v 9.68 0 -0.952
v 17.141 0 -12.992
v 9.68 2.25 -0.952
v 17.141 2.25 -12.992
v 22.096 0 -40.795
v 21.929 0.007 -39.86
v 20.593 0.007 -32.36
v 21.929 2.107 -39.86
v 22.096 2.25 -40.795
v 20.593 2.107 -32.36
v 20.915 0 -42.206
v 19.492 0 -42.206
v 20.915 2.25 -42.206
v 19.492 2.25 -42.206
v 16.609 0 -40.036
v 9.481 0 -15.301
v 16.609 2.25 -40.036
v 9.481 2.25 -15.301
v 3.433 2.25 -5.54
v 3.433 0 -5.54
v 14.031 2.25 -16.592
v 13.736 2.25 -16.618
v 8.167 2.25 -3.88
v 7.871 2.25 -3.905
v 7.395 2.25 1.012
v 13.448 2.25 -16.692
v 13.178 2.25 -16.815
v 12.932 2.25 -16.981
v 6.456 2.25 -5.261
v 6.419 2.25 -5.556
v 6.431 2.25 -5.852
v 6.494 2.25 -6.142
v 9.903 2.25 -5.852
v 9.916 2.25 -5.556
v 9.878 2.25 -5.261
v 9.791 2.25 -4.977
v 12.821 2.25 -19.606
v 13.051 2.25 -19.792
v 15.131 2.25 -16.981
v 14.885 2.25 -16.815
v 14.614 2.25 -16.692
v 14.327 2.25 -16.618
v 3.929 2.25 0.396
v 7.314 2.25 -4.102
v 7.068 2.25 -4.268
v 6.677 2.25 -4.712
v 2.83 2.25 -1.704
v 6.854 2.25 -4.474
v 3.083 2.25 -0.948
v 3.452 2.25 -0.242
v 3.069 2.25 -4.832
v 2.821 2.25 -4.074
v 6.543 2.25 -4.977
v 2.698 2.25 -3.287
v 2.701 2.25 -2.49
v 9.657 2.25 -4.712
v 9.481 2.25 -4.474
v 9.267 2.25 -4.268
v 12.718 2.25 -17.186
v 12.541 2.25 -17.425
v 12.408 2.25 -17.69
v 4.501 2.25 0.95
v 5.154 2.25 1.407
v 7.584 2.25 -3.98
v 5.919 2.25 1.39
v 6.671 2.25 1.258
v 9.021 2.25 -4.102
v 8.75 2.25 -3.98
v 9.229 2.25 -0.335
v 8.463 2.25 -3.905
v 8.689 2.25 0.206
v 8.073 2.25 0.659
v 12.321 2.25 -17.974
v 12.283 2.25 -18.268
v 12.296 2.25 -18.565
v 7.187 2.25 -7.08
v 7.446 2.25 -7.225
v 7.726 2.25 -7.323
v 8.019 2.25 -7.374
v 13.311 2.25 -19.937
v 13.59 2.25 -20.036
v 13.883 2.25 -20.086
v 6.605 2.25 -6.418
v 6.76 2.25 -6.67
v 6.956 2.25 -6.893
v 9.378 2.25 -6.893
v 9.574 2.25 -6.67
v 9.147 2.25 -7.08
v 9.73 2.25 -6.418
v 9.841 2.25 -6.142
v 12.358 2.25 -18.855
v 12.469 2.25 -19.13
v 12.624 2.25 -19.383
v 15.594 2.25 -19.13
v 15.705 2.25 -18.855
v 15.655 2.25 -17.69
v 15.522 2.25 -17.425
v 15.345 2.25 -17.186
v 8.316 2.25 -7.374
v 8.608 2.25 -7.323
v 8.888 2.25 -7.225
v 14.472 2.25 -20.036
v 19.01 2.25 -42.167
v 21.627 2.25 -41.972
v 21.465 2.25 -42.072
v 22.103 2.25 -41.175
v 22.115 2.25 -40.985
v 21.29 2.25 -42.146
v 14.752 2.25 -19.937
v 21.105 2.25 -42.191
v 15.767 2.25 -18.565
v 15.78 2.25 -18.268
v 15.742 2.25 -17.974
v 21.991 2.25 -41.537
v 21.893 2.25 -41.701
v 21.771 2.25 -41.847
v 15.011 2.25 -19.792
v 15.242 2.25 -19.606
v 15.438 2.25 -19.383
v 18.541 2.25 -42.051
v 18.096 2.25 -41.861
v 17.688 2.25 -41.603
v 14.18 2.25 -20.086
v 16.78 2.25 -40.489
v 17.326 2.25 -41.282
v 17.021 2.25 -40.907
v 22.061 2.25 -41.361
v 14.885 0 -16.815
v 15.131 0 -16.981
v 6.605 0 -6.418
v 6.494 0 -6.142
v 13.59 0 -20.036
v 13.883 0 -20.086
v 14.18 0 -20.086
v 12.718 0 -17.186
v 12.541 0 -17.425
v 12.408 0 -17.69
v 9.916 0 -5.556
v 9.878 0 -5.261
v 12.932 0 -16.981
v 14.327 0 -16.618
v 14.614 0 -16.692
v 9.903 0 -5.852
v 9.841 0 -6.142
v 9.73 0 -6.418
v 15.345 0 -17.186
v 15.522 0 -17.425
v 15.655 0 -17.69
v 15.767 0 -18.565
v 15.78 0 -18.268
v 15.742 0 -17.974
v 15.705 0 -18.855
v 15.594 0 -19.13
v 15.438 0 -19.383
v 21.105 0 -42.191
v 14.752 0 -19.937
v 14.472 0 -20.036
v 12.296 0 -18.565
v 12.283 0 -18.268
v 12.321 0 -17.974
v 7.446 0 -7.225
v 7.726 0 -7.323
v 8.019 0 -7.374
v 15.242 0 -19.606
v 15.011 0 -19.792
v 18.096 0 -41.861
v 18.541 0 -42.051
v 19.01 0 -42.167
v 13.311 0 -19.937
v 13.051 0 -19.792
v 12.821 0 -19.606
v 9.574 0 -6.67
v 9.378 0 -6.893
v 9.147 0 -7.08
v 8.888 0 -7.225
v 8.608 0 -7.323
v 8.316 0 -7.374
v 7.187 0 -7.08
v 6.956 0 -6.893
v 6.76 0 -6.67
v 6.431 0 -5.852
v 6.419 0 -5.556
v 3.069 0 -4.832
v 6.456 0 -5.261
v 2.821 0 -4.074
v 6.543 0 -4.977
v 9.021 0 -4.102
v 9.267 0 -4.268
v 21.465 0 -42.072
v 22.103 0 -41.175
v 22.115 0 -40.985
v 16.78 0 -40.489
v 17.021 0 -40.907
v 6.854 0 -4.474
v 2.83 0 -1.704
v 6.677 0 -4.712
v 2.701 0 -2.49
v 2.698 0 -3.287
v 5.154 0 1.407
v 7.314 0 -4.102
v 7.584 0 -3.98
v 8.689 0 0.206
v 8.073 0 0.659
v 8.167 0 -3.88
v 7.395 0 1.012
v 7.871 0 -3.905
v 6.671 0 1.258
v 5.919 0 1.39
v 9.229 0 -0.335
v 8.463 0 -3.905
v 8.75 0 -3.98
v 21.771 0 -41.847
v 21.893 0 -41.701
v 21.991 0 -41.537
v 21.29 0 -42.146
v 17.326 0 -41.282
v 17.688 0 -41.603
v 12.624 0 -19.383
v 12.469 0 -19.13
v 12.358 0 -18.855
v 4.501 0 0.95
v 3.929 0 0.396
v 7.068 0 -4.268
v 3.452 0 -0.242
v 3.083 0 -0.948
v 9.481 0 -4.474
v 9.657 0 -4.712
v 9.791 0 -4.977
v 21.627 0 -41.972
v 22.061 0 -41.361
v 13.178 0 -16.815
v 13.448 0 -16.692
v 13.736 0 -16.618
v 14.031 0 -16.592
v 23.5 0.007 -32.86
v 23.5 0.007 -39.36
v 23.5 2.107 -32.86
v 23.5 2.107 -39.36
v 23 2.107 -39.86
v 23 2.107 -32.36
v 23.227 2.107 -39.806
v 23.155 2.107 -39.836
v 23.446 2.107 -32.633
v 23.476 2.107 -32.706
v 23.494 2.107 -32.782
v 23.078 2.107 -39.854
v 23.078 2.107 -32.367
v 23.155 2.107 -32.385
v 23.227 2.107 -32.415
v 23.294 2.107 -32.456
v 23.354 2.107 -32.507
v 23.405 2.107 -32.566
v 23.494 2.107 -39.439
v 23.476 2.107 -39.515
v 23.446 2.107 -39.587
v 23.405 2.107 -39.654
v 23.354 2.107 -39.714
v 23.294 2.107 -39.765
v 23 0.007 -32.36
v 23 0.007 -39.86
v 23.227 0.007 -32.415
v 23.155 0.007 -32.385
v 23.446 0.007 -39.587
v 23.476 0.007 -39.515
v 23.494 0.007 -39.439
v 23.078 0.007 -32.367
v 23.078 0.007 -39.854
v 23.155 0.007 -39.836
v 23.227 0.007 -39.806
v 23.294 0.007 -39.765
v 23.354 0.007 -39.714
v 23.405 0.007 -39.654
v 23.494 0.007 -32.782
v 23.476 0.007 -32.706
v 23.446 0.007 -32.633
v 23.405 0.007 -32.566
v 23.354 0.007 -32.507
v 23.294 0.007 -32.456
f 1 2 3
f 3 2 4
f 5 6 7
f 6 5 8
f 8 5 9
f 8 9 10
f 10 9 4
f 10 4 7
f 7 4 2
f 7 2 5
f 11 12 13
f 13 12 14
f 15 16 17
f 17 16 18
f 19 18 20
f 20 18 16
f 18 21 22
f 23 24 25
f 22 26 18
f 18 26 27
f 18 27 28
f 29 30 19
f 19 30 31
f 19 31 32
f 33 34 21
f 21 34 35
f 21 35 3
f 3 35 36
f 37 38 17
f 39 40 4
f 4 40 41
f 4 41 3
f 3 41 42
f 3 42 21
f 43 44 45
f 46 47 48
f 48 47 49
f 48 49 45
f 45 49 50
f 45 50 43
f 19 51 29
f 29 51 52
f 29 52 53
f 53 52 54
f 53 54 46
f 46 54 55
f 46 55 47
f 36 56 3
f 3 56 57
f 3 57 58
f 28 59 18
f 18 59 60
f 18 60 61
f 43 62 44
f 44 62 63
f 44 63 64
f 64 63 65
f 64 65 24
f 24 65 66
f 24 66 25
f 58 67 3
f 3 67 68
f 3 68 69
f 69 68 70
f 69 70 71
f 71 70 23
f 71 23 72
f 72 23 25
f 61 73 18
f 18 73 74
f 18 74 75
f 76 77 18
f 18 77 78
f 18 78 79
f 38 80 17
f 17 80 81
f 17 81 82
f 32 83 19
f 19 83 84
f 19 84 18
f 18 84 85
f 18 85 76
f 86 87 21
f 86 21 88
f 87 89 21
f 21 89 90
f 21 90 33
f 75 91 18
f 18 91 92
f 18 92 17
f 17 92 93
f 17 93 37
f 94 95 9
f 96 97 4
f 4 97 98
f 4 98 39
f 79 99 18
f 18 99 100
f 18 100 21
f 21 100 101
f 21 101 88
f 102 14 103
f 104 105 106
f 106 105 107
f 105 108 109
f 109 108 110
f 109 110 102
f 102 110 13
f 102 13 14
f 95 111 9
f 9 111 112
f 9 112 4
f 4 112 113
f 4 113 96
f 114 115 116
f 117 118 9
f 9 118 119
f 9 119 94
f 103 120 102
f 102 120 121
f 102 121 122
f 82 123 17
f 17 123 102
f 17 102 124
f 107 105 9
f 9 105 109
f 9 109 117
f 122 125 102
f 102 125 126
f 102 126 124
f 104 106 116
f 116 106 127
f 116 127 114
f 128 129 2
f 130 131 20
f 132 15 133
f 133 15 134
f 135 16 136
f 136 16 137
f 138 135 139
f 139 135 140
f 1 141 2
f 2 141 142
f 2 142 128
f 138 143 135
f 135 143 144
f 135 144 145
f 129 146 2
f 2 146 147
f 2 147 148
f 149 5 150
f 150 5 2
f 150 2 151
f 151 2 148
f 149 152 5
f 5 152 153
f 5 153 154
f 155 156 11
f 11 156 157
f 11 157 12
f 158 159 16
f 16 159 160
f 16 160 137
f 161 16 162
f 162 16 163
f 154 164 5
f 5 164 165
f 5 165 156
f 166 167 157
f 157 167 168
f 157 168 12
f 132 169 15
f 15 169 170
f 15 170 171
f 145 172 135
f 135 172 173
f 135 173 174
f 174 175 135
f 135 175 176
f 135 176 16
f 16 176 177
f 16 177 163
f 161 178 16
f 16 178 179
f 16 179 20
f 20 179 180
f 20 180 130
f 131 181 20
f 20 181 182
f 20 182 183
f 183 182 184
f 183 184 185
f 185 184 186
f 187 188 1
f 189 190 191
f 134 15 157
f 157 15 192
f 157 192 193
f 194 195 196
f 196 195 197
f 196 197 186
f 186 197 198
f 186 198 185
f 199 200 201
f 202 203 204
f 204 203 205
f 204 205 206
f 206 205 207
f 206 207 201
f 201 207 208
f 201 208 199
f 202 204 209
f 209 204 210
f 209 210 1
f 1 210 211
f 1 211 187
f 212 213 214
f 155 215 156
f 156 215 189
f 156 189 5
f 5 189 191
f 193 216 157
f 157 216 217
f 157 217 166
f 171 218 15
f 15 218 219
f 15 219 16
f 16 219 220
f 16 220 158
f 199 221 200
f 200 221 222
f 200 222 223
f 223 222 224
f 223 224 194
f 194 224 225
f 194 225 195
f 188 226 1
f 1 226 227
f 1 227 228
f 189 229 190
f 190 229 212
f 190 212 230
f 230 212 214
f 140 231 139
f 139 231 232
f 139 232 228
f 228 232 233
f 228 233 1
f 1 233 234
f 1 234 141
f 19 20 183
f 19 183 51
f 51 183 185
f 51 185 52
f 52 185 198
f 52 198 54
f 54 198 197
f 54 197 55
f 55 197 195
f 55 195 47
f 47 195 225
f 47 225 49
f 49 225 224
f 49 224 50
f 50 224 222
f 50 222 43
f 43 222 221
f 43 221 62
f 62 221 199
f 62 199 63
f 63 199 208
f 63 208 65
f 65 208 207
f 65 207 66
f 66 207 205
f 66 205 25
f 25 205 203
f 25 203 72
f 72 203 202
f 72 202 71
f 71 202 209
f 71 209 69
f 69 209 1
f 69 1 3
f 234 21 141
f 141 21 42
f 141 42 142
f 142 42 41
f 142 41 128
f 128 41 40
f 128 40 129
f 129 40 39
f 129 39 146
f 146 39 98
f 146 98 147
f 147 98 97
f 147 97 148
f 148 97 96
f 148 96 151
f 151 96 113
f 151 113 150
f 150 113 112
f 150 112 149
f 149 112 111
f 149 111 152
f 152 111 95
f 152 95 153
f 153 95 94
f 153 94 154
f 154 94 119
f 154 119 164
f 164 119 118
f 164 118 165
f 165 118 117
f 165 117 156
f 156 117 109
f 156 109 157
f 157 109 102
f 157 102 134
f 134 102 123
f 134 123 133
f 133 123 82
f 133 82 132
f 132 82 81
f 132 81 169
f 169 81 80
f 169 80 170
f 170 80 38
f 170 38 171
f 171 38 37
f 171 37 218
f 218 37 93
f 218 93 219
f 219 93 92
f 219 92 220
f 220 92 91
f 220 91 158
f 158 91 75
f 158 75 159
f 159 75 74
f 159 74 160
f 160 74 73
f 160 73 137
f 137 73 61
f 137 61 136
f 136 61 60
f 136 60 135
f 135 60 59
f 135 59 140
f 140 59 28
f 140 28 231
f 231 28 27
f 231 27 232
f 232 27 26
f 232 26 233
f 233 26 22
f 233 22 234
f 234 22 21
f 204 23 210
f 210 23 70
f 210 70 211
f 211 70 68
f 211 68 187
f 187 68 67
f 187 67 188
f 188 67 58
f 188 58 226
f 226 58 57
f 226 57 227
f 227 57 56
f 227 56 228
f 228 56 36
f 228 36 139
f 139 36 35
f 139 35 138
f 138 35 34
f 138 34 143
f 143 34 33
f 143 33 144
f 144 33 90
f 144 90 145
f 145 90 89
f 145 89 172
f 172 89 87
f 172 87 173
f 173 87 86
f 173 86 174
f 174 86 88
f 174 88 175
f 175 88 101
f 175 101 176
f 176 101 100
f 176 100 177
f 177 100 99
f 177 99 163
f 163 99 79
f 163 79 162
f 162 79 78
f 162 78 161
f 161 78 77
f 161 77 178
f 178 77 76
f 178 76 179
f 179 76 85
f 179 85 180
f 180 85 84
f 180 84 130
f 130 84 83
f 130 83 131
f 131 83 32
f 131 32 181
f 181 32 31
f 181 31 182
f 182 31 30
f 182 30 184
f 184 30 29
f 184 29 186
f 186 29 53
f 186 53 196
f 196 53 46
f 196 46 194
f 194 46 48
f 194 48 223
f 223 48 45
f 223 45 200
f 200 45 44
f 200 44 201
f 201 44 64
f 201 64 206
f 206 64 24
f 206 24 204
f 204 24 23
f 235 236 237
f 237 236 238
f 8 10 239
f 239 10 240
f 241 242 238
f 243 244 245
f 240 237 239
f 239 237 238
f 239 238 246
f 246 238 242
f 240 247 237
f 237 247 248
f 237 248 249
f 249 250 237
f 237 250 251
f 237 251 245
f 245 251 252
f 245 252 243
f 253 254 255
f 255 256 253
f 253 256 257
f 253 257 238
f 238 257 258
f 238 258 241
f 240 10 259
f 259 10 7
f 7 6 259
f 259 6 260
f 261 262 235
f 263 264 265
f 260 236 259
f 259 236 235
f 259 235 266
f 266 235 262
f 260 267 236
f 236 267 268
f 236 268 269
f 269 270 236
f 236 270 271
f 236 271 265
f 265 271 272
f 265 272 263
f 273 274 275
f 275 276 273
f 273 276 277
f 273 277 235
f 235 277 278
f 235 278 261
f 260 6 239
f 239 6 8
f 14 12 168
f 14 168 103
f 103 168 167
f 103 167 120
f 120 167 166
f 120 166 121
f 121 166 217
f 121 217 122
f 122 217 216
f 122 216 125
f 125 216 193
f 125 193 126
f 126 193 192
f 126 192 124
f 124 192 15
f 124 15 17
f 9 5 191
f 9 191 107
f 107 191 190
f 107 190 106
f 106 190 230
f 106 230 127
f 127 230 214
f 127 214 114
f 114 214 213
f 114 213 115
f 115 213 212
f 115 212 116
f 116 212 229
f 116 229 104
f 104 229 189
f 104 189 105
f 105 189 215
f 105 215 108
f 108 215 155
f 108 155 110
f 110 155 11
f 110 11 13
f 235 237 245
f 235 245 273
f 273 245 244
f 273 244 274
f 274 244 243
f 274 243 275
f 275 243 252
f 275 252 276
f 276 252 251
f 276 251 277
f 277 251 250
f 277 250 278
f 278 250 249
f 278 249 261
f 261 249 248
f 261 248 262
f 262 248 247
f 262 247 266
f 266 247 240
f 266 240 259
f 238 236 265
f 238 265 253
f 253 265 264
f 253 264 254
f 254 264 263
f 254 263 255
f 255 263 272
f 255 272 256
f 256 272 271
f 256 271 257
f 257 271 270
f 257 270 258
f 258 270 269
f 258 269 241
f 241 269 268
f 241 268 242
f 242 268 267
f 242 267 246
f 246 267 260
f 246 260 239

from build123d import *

# Parameters (mm, degrees)
BOSS_EXTRUDE1_DEPTH = 2.25
FILLET1_R           = 5
SKETCH2_R           = 1.75
CUT_EXTRUDE1_DEPTH  = 48.810012982
BOSS_EXTRUDE2_REACH = 42.044
SKETCH4_W           = 7.5
SKETCH4_H           = 2.1
SKETCH4_2_W         = 7.5
SKETCH4_2_H         = 2.1
BOSS_EXTRUDE3_DEPTH = 1.570511633
FILLET2_R           = 3
FILLET3_R           = 1.2
FILLET4_R           = 0.5


with BuildPart() as part:
    # Sketch1 → Boss-Extrude1 (new body)
    with BuildSketch(Plane(origin=(0, 0, 0), x_dir=(1, 0, 0), z_dir=(0, 1, 0))):
        Polygon((0, 0), (9.481214188, 15.300541739), (17.234295106, 42.205740796), (22.347489461, 42.205740796), (17.140904697, 12.99204844), (7.659690509, -2.308493299), align=None)
    extrude(amount=BOSS_EXTRUDE1_DEPTH)

    # Fillet1
    # the kernel refuses this fillet: 5 mm, written as the material it takes off along each edge
    with BuildSketch(Plane(origin=(7.659690509, -9.589301146, 2.308493299), x_dir=(0.5267341215597666, 0, -0.8500300966346198), z_dir=(0, 1, 0))) as fillet1_piece_1:
        with BuildLine():
            CenterArc((FILLET1_R * 0.767144091705, FILLET1_R), FILLET1_R, 195.013192562, 74.986807438)
            Line((-FILLET1_R * 0.19872211495, FILLET1_R * 0.740958553812), (0, 0))
            Line((0, 0), (FILLET1_R * 0.767144091705, 0))
        make_face()
    extrude(amount=21.428602293, mode=Mode.SUBTRACT)
    with BuildSketch(Plane(origin=(0, -16.294200966, 0), x_dir=(0.5267341215597675, 0, -0.8500300966346193), z_dir=(0, 1, 0))) as fillet1_piece_2:
        with BuildLine():
            CenterArc((FILLET1_R * 1.30353607727, -FILLET1_R), FILLET1_R, 90, 105.013192562)
            Line((FILLET1_R * 0.337669870614, -FILLET1_R * 1.25904144619), (0, 0))
            Line((0, 0), (FILLET1_R * 1.30353607727, 0))
        make_face()
    extrude(amount=34.838401932, mode=Mode.SUBTRACT)

    # Sketch2 → Cut-Extrude1 (cut, through all)
    with BuildSketch(Plane(origin=(0, 2.25, 0), x_dir=(1, 0, 0), z_dir=(0, 1, 0))):
        with Locations(Location((8.167211871, 5.629873064, 0), (0, 0, 270))):
            Circle(SKETCH2_R)
        with Locations(Location((14.031451824, 18.342492377, 0), (0, 0, 270))):
            Circle(SKETCH2_R)
    extrude(amount=-CUT_EXTRUDE1_DEPTH, mode=Mode.SUBTRACT)

    # Boss-Extrude2: up to this plane
    boss_extrude2_end = Plane(origin=(17.140904697, 2.25, -12.99204844), z_dir=(-0.9844866893056965, 0, -0.17545927897922378))
    # Sketch4 → Boss-Extrude2 (add, up to the surface)
    with BuildSketch(Plane(origin=(23.5, -1.484709168, -8.201879583), x_dir=(0, 0, -1), z_dir=(1, 0, 0)), mode=Mode.PRIVATE) as boss_extrude2_sk1:
        with Locations((27.908493587, 2.541926215)):
            Rectangle(SKETCH4_W, SKETCH4_H)
    boss_extrude2_tool1 = split(extrude(boss_extrude2_sk1.sketch, amount=-BOSS_EXTRUDE2_REACH, mode=Mode.PRIVATE), bisect_by=boss_extrude2_end, keep=Keep.BOTH, mode=Mode.PRIVATE)
    add(boss_extrude2_tool1.solids().sort_by_distance((23.5, 1.057217, -36.110373))[0])

    # Sketch4<2> → Boss-Extrude3 (add)
    with BuildSketch(Plane(origin=(23.5, -1.484709168, -8.201879583), x_dir=(0, 0, -1), z_dir=(1, 0, 0))):
        with Locations((27.908493587, 2.541926215)):
            Rectangle(SKETCH4_2_W, SKETCH4_2_H)
    extrude(amount=-BOSS_EXTRUDE3_DEPTH)

    # Fillet2
    fillet2_edges = [part.edges().sort_by_distance(p)[0] for p in [
        (17.234295106, 1.125, -42.205740796),
    ]]
    fillet(fillet2_edges, radius=FILLET2_R)

    # Fillet3
    fillet3_edges = [part.edges().sort_by_distance(p)[0] for p in [
        (22.347489461, 1.125, -42.205740796),
    ]]
    fillet(fillet3_edges, radius=FILLET3_R)

    # Fillet4
    fillet4_edges = [part.edges().sort_by_distance(p)[0] for p in [
        (23.5, 1.057217047, -39.86037317),
        (23.5, 1.057217047, -32.36037317),
    ]]
    fillet(fillet4_edges, radius=FILLET4_R)


solid = part.part
